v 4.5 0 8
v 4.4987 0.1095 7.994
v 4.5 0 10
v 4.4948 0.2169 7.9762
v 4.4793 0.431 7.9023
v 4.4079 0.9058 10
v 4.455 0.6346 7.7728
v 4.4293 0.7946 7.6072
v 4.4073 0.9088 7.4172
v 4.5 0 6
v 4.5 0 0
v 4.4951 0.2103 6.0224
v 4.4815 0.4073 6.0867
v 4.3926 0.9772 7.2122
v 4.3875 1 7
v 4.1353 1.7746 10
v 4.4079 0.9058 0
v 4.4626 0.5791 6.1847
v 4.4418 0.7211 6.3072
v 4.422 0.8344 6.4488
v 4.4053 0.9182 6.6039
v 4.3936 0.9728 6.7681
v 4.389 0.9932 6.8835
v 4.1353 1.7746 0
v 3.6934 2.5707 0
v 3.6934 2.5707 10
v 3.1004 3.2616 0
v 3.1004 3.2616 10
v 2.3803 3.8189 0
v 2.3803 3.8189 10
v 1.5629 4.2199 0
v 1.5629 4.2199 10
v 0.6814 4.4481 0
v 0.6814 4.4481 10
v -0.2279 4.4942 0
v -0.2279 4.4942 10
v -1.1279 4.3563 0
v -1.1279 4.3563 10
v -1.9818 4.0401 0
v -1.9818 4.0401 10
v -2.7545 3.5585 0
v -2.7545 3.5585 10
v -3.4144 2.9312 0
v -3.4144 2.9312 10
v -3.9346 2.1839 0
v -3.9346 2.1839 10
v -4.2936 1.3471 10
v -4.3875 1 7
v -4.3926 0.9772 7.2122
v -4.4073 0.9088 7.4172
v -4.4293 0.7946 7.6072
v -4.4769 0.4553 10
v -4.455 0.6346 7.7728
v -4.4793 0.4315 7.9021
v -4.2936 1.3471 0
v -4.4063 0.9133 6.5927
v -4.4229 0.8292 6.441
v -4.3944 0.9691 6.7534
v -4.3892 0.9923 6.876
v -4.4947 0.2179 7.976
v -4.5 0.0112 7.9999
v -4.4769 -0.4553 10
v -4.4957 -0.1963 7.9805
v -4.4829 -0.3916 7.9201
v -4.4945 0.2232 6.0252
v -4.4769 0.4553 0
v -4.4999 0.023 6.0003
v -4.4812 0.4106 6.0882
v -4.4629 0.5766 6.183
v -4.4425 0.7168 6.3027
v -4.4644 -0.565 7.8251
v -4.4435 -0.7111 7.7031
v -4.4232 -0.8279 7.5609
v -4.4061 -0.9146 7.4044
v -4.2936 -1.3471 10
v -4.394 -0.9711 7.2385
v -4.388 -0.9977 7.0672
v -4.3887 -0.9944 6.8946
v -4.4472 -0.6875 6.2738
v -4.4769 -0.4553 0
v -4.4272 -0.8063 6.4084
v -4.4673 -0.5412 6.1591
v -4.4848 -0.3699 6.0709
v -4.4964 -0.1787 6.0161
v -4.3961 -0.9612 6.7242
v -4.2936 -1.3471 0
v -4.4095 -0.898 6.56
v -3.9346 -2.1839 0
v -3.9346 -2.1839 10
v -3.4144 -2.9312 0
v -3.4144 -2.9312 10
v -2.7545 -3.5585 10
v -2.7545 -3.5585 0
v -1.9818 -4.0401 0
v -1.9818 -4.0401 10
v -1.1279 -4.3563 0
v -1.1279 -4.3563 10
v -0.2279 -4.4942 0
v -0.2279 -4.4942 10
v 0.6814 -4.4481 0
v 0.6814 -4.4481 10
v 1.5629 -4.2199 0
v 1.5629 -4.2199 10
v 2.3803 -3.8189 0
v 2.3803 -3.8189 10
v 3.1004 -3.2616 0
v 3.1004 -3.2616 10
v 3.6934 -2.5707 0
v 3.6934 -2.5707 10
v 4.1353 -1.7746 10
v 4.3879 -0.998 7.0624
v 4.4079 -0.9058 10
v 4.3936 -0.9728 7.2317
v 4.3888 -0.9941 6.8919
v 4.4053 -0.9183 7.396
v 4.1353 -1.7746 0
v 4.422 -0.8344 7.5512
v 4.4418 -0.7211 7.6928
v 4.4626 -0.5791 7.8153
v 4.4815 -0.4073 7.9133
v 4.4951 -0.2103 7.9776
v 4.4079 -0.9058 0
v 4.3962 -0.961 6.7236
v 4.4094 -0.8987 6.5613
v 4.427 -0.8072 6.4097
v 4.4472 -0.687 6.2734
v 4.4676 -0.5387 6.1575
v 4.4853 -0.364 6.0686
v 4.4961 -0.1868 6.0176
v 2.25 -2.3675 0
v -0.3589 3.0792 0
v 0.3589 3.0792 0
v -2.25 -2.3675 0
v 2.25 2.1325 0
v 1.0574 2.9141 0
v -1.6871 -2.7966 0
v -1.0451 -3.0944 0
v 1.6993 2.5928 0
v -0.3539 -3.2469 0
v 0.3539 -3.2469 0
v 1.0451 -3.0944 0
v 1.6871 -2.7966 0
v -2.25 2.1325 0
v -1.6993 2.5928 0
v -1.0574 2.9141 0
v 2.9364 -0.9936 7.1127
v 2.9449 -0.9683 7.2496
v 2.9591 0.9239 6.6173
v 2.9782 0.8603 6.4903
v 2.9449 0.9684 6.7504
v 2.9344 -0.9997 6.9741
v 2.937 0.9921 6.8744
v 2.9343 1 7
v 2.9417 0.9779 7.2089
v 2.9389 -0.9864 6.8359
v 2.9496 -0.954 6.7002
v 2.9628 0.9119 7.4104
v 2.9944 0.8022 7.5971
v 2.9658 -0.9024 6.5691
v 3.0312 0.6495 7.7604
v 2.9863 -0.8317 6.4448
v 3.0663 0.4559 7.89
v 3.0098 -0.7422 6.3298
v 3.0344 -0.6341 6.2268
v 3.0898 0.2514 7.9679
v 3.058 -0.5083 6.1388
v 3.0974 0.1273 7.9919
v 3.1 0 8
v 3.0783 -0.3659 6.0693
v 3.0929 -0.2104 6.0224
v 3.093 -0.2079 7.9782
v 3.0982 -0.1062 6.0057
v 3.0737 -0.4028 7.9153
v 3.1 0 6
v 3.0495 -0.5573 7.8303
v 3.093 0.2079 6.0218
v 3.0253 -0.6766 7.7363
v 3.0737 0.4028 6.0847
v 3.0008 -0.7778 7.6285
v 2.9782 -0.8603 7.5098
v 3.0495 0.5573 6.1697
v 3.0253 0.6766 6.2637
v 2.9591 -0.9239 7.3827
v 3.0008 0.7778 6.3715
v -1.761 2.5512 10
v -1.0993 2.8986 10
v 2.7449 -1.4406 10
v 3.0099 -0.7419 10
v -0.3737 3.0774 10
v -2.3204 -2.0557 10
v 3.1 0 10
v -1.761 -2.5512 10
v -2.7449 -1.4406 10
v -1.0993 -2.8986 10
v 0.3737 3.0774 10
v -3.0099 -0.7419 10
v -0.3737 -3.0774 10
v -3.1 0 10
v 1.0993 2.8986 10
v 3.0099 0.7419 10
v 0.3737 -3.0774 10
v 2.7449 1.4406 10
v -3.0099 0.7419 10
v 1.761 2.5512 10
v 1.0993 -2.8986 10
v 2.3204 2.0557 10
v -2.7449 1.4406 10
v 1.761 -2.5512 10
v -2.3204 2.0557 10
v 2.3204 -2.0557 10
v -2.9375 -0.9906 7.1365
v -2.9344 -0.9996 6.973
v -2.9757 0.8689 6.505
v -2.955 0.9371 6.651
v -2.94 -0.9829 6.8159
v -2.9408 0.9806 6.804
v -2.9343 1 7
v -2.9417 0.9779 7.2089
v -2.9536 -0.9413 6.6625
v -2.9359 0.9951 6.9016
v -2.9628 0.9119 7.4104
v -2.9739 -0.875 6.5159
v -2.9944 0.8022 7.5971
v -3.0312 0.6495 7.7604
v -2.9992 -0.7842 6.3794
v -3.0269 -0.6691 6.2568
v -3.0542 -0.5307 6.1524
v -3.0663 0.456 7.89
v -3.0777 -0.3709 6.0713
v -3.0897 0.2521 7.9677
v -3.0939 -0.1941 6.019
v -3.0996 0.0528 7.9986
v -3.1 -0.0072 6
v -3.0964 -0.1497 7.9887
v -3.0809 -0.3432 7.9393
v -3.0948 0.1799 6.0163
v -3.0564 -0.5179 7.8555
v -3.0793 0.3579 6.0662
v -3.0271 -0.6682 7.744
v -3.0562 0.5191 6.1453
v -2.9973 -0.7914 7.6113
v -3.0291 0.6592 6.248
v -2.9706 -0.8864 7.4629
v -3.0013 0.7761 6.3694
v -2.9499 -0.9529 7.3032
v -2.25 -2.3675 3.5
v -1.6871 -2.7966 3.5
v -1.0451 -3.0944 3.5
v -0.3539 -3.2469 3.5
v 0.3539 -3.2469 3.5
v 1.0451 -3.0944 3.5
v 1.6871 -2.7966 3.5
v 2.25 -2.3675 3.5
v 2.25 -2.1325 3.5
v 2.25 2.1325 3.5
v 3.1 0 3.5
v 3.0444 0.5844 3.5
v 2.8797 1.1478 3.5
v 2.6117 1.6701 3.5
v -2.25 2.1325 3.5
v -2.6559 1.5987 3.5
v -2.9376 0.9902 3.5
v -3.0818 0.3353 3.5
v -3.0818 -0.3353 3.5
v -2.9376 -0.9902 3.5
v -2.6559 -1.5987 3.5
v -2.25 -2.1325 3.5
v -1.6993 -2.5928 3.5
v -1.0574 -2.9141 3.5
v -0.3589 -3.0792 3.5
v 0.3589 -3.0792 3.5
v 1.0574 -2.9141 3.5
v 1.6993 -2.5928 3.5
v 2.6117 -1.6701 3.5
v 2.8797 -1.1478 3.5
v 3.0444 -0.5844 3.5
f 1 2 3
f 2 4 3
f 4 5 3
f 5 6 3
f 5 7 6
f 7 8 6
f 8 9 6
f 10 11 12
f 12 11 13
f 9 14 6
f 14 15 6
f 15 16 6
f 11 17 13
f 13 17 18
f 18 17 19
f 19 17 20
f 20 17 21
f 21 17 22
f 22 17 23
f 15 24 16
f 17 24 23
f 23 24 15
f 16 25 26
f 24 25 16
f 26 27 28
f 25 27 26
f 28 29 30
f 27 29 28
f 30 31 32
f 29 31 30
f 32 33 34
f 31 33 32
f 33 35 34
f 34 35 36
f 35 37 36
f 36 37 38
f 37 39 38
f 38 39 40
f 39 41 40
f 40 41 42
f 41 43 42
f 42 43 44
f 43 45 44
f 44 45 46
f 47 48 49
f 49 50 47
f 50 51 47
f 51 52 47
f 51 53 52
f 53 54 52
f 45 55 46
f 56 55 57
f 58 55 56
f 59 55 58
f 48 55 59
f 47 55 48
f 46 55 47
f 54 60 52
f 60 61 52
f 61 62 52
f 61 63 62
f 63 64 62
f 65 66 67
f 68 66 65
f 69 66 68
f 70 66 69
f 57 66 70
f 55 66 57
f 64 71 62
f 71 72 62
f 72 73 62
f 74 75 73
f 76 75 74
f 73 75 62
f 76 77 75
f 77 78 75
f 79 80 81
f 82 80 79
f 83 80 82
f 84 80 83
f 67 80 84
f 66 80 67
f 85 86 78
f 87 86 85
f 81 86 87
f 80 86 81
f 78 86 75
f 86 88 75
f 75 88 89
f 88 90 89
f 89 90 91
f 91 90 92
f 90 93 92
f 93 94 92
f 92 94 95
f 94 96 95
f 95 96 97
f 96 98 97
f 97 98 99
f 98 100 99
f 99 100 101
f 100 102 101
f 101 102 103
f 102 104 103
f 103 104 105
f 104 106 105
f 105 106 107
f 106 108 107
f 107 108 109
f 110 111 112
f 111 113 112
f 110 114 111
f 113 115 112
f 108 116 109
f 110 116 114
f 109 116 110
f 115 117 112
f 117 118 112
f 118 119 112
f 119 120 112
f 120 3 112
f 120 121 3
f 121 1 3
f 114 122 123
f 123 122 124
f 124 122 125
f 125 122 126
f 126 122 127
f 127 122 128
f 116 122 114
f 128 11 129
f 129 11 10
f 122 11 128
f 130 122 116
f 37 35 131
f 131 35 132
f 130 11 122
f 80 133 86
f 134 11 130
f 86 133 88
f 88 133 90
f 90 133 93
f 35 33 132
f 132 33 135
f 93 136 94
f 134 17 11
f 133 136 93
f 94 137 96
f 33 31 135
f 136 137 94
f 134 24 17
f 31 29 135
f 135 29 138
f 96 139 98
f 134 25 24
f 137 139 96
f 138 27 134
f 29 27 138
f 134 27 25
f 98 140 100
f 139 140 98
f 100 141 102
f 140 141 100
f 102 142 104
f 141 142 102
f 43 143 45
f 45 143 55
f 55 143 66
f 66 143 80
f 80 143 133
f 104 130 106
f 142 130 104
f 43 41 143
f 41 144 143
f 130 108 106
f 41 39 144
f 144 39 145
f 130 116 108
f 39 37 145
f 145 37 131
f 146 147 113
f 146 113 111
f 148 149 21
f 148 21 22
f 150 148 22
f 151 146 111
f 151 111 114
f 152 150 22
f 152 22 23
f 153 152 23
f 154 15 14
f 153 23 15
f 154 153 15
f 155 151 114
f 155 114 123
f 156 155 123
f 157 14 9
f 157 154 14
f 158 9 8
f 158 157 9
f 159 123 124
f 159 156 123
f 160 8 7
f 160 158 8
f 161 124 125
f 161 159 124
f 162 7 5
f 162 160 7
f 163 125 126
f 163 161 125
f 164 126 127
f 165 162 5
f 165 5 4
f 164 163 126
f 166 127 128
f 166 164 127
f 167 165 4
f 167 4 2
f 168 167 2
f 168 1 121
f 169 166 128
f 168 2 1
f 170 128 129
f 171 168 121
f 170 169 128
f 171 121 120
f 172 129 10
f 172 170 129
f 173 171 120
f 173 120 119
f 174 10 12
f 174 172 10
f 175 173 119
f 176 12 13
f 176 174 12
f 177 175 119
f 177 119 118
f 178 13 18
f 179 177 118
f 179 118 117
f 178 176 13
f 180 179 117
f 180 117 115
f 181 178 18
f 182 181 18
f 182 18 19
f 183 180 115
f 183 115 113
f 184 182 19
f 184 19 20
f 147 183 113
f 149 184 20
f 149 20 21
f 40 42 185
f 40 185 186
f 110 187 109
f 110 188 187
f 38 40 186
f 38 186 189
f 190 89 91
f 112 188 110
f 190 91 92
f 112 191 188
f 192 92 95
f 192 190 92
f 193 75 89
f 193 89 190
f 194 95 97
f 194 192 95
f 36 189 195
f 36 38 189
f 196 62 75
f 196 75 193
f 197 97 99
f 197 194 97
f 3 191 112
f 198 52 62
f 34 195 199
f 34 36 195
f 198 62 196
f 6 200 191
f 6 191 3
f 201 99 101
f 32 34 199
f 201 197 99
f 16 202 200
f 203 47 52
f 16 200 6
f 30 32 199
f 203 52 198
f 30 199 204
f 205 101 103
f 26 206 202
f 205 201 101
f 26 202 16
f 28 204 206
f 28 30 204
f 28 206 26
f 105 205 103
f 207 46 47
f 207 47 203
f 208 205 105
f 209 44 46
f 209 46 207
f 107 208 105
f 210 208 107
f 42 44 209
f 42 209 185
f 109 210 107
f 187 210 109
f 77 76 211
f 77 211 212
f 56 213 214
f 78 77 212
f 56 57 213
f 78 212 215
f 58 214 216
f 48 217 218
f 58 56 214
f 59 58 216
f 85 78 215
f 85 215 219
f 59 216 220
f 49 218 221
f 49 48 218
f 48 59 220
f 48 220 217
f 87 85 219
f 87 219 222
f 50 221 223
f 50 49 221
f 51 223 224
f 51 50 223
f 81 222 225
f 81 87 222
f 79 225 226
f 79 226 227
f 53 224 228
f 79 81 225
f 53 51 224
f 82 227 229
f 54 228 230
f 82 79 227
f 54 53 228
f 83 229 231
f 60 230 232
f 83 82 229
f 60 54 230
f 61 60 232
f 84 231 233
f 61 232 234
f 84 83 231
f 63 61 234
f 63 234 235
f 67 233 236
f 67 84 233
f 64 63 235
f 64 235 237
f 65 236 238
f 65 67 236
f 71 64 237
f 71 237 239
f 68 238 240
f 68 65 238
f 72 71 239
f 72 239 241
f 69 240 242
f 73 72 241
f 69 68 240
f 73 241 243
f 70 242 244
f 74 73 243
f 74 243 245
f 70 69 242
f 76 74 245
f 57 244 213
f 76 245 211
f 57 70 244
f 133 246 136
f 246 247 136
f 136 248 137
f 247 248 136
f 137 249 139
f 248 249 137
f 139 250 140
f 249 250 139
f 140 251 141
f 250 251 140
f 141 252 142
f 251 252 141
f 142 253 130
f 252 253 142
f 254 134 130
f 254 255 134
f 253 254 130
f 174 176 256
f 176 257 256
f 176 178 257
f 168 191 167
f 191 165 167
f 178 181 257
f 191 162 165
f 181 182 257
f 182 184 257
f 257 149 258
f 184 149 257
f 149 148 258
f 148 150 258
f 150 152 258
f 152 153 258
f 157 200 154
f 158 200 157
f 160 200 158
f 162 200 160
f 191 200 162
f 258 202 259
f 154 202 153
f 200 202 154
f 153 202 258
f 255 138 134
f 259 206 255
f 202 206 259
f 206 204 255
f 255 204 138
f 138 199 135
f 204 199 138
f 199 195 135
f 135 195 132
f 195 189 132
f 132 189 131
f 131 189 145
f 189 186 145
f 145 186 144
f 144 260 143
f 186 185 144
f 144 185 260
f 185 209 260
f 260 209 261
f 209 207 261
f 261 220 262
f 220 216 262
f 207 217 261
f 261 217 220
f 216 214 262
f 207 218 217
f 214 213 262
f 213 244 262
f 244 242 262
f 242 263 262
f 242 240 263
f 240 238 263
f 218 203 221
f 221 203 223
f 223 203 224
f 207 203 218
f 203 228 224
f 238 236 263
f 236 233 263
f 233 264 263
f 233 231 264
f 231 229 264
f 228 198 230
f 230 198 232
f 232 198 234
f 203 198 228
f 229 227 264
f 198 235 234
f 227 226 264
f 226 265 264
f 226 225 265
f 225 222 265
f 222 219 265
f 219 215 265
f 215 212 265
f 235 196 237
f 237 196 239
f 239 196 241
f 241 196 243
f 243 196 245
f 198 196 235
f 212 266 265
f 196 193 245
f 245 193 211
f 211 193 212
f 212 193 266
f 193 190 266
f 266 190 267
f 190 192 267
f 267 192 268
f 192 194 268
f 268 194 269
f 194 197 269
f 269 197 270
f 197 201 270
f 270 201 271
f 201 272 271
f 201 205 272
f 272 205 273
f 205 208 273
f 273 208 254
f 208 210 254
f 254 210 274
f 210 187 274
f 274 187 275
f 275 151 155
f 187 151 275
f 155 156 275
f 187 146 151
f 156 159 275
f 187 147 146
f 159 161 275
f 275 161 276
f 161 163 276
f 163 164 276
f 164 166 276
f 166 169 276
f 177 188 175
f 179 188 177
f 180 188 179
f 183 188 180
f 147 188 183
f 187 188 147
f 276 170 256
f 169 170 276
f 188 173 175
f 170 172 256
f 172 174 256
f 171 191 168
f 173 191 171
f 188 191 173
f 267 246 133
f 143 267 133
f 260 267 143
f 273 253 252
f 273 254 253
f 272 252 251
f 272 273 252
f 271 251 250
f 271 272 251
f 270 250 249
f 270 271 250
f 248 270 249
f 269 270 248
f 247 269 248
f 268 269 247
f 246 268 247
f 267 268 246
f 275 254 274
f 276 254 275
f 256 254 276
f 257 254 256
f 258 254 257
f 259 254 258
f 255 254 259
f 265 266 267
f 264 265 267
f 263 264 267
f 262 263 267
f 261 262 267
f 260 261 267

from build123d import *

# Parameters (mm, degrees)
SKETCH003_R     = 1
PAD001_DEPTH    = 5
SKETCH_R        = 4.5
PAD_DEPTH       = 10
SKETCH001_R     = 3.1
POCKET_DEPTH    = 6.5
POCKET001_DEPTH = 3.501


with BuildPart() as hole:
    # Sketch003 → Pad001 (new body, symmetric)
    with BuildSketch(Plane.YZ):
        with Locations((0, 7)):
            Circle(SKETCH003_R)
    extrude(amount=PAD001_DEPTH, both=True)


with BuildPart() as cut:
    # Sketch (on Part) → Pad (new body)
    with BuildSketch(Plane.XY):
        Circle(SKETCH_R)
    extrude(amount=PAD_DEPTH)

    # Sketch001 (on Face3 of Pad) → Pocket (cut)
    with BuildSketch(Plane.XY.offset(10)):
        Circle(SKETCH001_R)
    extrude(amount=-POCKET_DEPTH, mode=Mode.SUBTRACT)

    # Sketch002 (on Face5 of Pocket) → Pocket001 (cut, through all)
    with BuildSketch(Plane.XY.offset(3.5)):
        with BuildLine():
            Line((2.25, 2.132487), (2.25, -2.367513))
            ThreePointArc((-2.25, -2.367513), (0, -3.266132), (2.25, -2.367513))
            Line((-2.25, -2.367513), (-2.25, 2.132487))
            ThreePointArc((2.25, 2.132487), (0, 3.1), (-2.25, 2.132487))
        make_face()
    extrude(amount=-POCKET001_DEPTH, mode=Mode.SUBTRACT)

    # Cut: cut Hole
    add(hole.part, mode=Mode.SUBTRACT)


solid = cut.part
